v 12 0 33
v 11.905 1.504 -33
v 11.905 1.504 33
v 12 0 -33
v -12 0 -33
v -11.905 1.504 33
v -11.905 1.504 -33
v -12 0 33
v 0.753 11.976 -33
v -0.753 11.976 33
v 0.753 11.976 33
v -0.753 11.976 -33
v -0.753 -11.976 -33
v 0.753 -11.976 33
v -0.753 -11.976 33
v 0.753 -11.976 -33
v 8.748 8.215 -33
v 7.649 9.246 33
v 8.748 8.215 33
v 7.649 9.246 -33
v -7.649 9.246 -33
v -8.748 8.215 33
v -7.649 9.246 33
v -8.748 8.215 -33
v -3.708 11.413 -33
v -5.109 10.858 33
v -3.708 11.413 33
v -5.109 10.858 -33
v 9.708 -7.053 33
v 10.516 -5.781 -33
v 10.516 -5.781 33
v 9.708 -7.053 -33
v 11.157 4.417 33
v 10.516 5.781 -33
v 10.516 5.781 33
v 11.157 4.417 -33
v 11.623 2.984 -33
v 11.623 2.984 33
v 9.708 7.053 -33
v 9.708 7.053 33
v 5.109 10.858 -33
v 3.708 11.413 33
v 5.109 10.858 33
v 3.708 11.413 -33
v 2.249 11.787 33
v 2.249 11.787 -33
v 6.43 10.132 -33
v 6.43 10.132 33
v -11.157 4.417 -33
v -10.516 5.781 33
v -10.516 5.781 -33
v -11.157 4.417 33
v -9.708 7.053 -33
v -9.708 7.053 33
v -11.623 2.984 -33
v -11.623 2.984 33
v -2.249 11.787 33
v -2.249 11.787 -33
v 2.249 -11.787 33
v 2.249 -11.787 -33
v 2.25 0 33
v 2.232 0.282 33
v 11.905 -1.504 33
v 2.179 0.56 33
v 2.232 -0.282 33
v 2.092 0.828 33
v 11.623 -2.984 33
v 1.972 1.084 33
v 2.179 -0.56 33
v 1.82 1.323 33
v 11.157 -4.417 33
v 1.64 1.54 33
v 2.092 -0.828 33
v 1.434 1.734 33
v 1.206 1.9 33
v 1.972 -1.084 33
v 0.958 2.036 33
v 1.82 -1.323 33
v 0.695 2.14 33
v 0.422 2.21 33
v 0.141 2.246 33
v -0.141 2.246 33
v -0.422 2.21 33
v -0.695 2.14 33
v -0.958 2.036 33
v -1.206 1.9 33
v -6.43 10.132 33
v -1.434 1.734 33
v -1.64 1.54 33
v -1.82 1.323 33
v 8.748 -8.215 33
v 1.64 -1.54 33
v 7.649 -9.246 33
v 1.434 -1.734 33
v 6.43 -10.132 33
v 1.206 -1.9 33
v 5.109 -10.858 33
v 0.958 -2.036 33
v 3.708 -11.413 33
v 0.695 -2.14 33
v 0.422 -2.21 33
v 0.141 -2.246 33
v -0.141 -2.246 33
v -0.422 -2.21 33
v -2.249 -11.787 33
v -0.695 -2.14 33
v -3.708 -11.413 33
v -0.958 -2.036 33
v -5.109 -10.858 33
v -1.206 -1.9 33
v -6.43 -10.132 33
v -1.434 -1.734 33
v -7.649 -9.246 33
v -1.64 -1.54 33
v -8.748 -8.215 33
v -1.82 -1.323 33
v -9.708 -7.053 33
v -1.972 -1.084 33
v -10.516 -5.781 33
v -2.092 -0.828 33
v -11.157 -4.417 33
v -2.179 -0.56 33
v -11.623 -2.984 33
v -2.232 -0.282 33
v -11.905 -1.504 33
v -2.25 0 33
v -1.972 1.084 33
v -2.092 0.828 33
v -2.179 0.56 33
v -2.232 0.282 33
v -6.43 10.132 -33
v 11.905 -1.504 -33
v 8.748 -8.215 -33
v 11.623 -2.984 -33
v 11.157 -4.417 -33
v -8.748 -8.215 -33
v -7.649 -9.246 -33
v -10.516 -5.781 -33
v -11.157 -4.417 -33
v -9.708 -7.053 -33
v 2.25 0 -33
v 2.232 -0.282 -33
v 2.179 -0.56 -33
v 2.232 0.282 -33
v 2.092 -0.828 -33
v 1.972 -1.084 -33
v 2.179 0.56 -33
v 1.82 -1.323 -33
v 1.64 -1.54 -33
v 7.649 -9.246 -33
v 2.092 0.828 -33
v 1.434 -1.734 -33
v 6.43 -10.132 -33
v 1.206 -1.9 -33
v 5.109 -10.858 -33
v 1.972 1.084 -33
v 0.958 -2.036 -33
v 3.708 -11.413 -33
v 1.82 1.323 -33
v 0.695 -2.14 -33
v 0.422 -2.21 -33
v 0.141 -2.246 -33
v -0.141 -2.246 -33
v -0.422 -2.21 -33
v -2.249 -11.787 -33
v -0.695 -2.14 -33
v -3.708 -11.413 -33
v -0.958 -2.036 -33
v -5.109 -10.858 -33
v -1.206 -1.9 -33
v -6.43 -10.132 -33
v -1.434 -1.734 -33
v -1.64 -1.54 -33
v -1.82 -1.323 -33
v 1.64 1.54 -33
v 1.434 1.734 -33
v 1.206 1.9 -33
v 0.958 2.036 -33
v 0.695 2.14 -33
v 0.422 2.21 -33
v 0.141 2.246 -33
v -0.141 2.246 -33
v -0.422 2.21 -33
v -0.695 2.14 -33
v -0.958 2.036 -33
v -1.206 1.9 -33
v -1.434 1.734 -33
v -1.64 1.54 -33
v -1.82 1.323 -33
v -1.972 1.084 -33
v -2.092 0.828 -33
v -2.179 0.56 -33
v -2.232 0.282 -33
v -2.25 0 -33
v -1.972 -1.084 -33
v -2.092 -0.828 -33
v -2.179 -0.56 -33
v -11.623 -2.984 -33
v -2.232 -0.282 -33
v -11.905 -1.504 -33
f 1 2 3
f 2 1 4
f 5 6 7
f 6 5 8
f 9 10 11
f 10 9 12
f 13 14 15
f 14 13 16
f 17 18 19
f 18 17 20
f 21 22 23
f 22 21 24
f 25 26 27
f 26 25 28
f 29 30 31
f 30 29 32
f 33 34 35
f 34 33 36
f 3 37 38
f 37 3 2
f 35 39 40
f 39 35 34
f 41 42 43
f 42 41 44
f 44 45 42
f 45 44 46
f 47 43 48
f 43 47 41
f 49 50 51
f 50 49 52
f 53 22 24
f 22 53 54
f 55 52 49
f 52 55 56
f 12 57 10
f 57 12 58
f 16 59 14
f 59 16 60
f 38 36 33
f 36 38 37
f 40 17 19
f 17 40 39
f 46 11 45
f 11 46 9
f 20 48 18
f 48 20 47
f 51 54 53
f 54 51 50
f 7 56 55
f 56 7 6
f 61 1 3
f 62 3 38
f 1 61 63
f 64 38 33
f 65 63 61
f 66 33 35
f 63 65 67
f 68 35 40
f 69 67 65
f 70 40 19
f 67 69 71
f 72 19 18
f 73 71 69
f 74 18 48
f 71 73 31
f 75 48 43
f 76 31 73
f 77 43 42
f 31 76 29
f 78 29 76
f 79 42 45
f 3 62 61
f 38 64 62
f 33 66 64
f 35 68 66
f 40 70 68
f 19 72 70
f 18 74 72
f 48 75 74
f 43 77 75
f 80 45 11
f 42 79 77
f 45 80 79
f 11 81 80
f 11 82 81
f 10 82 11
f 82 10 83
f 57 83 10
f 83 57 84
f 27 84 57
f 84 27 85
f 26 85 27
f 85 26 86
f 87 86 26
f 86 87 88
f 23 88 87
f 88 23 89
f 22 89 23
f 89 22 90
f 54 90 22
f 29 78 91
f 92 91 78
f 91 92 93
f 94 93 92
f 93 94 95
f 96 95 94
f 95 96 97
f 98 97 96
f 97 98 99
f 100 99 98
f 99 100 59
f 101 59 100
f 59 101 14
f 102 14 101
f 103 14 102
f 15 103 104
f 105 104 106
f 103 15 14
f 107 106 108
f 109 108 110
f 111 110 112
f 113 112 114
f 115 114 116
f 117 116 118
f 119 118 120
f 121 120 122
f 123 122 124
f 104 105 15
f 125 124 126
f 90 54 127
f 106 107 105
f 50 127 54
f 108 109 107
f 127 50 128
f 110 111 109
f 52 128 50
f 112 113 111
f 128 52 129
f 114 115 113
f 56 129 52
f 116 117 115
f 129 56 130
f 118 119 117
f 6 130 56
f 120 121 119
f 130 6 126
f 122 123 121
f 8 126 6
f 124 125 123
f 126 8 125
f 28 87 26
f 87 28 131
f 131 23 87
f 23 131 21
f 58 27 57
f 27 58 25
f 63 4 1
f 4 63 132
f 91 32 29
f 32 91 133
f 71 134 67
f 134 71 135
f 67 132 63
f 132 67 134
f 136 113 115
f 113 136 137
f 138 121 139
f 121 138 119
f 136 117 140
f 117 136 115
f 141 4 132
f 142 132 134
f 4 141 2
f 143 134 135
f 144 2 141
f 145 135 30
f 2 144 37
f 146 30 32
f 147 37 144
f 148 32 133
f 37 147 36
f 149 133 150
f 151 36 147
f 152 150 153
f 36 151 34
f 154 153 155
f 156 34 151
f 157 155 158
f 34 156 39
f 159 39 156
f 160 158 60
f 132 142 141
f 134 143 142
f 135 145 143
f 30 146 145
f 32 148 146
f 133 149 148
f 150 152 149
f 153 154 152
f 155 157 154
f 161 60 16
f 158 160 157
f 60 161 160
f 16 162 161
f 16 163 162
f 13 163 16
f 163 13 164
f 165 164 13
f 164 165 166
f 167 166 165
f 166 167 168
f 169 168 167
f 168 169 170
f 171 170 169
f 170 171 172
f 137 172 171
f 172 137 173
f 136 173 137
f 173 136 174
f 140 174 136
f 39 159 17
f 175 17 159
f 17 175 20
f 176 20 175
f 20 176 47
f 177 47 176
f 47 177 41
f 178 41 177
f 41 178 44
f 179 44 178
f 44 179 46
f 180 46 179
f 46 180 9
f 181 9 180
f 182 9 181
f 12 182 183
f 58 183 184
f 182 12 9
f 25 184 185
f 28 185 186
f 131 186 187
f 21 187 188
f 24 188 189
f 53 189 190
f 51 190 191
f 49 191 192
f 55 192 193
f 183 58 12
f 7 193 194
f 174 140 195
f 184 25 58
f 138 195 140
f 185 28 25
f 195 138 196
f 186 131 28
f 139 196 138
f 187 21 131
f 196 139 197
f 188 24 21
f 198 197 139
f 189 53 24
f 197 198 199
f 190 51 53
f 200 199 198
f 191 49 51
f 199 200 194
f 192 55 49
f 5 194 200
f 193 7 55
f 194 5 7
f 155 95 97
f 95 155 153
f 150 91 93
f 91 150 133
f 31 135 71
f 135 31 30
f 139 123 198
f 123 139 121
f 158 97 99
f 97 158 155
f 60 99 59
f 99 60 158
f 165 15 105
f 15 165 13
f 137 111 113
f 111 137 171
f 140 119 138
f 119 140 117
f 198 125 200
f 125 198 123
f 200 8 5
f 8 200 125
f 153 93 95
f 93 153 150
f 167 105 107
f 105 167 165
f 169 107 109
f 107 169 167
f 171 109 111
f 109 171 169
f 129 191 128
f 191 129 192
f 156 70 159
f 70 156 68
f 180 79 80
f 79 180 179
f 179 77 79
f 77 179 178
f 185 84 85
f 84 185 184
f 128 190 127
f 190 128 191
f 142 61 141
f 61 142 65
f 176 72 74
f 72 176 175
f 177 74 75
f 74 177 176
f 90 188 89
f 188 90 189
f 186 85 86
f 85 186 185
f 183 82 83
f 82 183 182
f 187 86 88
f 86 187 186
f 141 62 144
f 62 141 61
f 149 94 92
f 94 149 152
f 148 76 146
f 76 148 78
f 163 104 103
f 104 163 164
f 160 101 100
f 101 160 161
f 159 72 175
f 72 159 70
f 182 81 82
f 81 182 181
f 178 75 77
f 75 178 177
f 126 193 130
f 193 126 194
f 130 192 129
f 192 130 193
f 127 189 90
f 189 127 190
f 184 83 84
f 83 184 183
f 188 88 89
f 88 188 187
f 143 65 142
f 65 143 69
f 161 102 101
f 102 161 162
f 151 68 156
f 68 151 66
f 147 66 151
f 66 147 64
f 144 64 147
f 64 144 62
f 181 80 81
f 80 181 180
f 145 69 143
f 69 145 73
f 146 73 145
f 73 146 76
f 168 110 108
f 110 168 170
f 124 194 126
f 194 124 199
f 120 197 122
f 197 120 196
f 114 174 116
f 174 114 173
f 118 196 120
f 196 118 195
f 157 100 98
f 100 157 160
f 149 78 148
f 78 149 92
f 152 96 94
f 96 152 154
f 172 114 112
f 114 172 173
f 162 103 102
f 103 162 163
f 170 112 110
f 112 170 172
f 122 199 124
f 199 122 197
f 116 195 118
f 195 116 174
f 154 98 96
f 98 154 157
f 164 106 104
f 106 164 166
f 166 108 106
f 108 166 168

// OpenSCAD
$fn = 50;


difference() {
	union() {
		translate(v = [0, 0, -33.0000000000]) {
			cylinder(h = 66, r = 12.0000000000);
		}
	}
	union() {
		translate(v = [0, 0, -100.0000000000]) {
			cylinder(h = 200, r = 2.2500000000);
		}
	}
}
